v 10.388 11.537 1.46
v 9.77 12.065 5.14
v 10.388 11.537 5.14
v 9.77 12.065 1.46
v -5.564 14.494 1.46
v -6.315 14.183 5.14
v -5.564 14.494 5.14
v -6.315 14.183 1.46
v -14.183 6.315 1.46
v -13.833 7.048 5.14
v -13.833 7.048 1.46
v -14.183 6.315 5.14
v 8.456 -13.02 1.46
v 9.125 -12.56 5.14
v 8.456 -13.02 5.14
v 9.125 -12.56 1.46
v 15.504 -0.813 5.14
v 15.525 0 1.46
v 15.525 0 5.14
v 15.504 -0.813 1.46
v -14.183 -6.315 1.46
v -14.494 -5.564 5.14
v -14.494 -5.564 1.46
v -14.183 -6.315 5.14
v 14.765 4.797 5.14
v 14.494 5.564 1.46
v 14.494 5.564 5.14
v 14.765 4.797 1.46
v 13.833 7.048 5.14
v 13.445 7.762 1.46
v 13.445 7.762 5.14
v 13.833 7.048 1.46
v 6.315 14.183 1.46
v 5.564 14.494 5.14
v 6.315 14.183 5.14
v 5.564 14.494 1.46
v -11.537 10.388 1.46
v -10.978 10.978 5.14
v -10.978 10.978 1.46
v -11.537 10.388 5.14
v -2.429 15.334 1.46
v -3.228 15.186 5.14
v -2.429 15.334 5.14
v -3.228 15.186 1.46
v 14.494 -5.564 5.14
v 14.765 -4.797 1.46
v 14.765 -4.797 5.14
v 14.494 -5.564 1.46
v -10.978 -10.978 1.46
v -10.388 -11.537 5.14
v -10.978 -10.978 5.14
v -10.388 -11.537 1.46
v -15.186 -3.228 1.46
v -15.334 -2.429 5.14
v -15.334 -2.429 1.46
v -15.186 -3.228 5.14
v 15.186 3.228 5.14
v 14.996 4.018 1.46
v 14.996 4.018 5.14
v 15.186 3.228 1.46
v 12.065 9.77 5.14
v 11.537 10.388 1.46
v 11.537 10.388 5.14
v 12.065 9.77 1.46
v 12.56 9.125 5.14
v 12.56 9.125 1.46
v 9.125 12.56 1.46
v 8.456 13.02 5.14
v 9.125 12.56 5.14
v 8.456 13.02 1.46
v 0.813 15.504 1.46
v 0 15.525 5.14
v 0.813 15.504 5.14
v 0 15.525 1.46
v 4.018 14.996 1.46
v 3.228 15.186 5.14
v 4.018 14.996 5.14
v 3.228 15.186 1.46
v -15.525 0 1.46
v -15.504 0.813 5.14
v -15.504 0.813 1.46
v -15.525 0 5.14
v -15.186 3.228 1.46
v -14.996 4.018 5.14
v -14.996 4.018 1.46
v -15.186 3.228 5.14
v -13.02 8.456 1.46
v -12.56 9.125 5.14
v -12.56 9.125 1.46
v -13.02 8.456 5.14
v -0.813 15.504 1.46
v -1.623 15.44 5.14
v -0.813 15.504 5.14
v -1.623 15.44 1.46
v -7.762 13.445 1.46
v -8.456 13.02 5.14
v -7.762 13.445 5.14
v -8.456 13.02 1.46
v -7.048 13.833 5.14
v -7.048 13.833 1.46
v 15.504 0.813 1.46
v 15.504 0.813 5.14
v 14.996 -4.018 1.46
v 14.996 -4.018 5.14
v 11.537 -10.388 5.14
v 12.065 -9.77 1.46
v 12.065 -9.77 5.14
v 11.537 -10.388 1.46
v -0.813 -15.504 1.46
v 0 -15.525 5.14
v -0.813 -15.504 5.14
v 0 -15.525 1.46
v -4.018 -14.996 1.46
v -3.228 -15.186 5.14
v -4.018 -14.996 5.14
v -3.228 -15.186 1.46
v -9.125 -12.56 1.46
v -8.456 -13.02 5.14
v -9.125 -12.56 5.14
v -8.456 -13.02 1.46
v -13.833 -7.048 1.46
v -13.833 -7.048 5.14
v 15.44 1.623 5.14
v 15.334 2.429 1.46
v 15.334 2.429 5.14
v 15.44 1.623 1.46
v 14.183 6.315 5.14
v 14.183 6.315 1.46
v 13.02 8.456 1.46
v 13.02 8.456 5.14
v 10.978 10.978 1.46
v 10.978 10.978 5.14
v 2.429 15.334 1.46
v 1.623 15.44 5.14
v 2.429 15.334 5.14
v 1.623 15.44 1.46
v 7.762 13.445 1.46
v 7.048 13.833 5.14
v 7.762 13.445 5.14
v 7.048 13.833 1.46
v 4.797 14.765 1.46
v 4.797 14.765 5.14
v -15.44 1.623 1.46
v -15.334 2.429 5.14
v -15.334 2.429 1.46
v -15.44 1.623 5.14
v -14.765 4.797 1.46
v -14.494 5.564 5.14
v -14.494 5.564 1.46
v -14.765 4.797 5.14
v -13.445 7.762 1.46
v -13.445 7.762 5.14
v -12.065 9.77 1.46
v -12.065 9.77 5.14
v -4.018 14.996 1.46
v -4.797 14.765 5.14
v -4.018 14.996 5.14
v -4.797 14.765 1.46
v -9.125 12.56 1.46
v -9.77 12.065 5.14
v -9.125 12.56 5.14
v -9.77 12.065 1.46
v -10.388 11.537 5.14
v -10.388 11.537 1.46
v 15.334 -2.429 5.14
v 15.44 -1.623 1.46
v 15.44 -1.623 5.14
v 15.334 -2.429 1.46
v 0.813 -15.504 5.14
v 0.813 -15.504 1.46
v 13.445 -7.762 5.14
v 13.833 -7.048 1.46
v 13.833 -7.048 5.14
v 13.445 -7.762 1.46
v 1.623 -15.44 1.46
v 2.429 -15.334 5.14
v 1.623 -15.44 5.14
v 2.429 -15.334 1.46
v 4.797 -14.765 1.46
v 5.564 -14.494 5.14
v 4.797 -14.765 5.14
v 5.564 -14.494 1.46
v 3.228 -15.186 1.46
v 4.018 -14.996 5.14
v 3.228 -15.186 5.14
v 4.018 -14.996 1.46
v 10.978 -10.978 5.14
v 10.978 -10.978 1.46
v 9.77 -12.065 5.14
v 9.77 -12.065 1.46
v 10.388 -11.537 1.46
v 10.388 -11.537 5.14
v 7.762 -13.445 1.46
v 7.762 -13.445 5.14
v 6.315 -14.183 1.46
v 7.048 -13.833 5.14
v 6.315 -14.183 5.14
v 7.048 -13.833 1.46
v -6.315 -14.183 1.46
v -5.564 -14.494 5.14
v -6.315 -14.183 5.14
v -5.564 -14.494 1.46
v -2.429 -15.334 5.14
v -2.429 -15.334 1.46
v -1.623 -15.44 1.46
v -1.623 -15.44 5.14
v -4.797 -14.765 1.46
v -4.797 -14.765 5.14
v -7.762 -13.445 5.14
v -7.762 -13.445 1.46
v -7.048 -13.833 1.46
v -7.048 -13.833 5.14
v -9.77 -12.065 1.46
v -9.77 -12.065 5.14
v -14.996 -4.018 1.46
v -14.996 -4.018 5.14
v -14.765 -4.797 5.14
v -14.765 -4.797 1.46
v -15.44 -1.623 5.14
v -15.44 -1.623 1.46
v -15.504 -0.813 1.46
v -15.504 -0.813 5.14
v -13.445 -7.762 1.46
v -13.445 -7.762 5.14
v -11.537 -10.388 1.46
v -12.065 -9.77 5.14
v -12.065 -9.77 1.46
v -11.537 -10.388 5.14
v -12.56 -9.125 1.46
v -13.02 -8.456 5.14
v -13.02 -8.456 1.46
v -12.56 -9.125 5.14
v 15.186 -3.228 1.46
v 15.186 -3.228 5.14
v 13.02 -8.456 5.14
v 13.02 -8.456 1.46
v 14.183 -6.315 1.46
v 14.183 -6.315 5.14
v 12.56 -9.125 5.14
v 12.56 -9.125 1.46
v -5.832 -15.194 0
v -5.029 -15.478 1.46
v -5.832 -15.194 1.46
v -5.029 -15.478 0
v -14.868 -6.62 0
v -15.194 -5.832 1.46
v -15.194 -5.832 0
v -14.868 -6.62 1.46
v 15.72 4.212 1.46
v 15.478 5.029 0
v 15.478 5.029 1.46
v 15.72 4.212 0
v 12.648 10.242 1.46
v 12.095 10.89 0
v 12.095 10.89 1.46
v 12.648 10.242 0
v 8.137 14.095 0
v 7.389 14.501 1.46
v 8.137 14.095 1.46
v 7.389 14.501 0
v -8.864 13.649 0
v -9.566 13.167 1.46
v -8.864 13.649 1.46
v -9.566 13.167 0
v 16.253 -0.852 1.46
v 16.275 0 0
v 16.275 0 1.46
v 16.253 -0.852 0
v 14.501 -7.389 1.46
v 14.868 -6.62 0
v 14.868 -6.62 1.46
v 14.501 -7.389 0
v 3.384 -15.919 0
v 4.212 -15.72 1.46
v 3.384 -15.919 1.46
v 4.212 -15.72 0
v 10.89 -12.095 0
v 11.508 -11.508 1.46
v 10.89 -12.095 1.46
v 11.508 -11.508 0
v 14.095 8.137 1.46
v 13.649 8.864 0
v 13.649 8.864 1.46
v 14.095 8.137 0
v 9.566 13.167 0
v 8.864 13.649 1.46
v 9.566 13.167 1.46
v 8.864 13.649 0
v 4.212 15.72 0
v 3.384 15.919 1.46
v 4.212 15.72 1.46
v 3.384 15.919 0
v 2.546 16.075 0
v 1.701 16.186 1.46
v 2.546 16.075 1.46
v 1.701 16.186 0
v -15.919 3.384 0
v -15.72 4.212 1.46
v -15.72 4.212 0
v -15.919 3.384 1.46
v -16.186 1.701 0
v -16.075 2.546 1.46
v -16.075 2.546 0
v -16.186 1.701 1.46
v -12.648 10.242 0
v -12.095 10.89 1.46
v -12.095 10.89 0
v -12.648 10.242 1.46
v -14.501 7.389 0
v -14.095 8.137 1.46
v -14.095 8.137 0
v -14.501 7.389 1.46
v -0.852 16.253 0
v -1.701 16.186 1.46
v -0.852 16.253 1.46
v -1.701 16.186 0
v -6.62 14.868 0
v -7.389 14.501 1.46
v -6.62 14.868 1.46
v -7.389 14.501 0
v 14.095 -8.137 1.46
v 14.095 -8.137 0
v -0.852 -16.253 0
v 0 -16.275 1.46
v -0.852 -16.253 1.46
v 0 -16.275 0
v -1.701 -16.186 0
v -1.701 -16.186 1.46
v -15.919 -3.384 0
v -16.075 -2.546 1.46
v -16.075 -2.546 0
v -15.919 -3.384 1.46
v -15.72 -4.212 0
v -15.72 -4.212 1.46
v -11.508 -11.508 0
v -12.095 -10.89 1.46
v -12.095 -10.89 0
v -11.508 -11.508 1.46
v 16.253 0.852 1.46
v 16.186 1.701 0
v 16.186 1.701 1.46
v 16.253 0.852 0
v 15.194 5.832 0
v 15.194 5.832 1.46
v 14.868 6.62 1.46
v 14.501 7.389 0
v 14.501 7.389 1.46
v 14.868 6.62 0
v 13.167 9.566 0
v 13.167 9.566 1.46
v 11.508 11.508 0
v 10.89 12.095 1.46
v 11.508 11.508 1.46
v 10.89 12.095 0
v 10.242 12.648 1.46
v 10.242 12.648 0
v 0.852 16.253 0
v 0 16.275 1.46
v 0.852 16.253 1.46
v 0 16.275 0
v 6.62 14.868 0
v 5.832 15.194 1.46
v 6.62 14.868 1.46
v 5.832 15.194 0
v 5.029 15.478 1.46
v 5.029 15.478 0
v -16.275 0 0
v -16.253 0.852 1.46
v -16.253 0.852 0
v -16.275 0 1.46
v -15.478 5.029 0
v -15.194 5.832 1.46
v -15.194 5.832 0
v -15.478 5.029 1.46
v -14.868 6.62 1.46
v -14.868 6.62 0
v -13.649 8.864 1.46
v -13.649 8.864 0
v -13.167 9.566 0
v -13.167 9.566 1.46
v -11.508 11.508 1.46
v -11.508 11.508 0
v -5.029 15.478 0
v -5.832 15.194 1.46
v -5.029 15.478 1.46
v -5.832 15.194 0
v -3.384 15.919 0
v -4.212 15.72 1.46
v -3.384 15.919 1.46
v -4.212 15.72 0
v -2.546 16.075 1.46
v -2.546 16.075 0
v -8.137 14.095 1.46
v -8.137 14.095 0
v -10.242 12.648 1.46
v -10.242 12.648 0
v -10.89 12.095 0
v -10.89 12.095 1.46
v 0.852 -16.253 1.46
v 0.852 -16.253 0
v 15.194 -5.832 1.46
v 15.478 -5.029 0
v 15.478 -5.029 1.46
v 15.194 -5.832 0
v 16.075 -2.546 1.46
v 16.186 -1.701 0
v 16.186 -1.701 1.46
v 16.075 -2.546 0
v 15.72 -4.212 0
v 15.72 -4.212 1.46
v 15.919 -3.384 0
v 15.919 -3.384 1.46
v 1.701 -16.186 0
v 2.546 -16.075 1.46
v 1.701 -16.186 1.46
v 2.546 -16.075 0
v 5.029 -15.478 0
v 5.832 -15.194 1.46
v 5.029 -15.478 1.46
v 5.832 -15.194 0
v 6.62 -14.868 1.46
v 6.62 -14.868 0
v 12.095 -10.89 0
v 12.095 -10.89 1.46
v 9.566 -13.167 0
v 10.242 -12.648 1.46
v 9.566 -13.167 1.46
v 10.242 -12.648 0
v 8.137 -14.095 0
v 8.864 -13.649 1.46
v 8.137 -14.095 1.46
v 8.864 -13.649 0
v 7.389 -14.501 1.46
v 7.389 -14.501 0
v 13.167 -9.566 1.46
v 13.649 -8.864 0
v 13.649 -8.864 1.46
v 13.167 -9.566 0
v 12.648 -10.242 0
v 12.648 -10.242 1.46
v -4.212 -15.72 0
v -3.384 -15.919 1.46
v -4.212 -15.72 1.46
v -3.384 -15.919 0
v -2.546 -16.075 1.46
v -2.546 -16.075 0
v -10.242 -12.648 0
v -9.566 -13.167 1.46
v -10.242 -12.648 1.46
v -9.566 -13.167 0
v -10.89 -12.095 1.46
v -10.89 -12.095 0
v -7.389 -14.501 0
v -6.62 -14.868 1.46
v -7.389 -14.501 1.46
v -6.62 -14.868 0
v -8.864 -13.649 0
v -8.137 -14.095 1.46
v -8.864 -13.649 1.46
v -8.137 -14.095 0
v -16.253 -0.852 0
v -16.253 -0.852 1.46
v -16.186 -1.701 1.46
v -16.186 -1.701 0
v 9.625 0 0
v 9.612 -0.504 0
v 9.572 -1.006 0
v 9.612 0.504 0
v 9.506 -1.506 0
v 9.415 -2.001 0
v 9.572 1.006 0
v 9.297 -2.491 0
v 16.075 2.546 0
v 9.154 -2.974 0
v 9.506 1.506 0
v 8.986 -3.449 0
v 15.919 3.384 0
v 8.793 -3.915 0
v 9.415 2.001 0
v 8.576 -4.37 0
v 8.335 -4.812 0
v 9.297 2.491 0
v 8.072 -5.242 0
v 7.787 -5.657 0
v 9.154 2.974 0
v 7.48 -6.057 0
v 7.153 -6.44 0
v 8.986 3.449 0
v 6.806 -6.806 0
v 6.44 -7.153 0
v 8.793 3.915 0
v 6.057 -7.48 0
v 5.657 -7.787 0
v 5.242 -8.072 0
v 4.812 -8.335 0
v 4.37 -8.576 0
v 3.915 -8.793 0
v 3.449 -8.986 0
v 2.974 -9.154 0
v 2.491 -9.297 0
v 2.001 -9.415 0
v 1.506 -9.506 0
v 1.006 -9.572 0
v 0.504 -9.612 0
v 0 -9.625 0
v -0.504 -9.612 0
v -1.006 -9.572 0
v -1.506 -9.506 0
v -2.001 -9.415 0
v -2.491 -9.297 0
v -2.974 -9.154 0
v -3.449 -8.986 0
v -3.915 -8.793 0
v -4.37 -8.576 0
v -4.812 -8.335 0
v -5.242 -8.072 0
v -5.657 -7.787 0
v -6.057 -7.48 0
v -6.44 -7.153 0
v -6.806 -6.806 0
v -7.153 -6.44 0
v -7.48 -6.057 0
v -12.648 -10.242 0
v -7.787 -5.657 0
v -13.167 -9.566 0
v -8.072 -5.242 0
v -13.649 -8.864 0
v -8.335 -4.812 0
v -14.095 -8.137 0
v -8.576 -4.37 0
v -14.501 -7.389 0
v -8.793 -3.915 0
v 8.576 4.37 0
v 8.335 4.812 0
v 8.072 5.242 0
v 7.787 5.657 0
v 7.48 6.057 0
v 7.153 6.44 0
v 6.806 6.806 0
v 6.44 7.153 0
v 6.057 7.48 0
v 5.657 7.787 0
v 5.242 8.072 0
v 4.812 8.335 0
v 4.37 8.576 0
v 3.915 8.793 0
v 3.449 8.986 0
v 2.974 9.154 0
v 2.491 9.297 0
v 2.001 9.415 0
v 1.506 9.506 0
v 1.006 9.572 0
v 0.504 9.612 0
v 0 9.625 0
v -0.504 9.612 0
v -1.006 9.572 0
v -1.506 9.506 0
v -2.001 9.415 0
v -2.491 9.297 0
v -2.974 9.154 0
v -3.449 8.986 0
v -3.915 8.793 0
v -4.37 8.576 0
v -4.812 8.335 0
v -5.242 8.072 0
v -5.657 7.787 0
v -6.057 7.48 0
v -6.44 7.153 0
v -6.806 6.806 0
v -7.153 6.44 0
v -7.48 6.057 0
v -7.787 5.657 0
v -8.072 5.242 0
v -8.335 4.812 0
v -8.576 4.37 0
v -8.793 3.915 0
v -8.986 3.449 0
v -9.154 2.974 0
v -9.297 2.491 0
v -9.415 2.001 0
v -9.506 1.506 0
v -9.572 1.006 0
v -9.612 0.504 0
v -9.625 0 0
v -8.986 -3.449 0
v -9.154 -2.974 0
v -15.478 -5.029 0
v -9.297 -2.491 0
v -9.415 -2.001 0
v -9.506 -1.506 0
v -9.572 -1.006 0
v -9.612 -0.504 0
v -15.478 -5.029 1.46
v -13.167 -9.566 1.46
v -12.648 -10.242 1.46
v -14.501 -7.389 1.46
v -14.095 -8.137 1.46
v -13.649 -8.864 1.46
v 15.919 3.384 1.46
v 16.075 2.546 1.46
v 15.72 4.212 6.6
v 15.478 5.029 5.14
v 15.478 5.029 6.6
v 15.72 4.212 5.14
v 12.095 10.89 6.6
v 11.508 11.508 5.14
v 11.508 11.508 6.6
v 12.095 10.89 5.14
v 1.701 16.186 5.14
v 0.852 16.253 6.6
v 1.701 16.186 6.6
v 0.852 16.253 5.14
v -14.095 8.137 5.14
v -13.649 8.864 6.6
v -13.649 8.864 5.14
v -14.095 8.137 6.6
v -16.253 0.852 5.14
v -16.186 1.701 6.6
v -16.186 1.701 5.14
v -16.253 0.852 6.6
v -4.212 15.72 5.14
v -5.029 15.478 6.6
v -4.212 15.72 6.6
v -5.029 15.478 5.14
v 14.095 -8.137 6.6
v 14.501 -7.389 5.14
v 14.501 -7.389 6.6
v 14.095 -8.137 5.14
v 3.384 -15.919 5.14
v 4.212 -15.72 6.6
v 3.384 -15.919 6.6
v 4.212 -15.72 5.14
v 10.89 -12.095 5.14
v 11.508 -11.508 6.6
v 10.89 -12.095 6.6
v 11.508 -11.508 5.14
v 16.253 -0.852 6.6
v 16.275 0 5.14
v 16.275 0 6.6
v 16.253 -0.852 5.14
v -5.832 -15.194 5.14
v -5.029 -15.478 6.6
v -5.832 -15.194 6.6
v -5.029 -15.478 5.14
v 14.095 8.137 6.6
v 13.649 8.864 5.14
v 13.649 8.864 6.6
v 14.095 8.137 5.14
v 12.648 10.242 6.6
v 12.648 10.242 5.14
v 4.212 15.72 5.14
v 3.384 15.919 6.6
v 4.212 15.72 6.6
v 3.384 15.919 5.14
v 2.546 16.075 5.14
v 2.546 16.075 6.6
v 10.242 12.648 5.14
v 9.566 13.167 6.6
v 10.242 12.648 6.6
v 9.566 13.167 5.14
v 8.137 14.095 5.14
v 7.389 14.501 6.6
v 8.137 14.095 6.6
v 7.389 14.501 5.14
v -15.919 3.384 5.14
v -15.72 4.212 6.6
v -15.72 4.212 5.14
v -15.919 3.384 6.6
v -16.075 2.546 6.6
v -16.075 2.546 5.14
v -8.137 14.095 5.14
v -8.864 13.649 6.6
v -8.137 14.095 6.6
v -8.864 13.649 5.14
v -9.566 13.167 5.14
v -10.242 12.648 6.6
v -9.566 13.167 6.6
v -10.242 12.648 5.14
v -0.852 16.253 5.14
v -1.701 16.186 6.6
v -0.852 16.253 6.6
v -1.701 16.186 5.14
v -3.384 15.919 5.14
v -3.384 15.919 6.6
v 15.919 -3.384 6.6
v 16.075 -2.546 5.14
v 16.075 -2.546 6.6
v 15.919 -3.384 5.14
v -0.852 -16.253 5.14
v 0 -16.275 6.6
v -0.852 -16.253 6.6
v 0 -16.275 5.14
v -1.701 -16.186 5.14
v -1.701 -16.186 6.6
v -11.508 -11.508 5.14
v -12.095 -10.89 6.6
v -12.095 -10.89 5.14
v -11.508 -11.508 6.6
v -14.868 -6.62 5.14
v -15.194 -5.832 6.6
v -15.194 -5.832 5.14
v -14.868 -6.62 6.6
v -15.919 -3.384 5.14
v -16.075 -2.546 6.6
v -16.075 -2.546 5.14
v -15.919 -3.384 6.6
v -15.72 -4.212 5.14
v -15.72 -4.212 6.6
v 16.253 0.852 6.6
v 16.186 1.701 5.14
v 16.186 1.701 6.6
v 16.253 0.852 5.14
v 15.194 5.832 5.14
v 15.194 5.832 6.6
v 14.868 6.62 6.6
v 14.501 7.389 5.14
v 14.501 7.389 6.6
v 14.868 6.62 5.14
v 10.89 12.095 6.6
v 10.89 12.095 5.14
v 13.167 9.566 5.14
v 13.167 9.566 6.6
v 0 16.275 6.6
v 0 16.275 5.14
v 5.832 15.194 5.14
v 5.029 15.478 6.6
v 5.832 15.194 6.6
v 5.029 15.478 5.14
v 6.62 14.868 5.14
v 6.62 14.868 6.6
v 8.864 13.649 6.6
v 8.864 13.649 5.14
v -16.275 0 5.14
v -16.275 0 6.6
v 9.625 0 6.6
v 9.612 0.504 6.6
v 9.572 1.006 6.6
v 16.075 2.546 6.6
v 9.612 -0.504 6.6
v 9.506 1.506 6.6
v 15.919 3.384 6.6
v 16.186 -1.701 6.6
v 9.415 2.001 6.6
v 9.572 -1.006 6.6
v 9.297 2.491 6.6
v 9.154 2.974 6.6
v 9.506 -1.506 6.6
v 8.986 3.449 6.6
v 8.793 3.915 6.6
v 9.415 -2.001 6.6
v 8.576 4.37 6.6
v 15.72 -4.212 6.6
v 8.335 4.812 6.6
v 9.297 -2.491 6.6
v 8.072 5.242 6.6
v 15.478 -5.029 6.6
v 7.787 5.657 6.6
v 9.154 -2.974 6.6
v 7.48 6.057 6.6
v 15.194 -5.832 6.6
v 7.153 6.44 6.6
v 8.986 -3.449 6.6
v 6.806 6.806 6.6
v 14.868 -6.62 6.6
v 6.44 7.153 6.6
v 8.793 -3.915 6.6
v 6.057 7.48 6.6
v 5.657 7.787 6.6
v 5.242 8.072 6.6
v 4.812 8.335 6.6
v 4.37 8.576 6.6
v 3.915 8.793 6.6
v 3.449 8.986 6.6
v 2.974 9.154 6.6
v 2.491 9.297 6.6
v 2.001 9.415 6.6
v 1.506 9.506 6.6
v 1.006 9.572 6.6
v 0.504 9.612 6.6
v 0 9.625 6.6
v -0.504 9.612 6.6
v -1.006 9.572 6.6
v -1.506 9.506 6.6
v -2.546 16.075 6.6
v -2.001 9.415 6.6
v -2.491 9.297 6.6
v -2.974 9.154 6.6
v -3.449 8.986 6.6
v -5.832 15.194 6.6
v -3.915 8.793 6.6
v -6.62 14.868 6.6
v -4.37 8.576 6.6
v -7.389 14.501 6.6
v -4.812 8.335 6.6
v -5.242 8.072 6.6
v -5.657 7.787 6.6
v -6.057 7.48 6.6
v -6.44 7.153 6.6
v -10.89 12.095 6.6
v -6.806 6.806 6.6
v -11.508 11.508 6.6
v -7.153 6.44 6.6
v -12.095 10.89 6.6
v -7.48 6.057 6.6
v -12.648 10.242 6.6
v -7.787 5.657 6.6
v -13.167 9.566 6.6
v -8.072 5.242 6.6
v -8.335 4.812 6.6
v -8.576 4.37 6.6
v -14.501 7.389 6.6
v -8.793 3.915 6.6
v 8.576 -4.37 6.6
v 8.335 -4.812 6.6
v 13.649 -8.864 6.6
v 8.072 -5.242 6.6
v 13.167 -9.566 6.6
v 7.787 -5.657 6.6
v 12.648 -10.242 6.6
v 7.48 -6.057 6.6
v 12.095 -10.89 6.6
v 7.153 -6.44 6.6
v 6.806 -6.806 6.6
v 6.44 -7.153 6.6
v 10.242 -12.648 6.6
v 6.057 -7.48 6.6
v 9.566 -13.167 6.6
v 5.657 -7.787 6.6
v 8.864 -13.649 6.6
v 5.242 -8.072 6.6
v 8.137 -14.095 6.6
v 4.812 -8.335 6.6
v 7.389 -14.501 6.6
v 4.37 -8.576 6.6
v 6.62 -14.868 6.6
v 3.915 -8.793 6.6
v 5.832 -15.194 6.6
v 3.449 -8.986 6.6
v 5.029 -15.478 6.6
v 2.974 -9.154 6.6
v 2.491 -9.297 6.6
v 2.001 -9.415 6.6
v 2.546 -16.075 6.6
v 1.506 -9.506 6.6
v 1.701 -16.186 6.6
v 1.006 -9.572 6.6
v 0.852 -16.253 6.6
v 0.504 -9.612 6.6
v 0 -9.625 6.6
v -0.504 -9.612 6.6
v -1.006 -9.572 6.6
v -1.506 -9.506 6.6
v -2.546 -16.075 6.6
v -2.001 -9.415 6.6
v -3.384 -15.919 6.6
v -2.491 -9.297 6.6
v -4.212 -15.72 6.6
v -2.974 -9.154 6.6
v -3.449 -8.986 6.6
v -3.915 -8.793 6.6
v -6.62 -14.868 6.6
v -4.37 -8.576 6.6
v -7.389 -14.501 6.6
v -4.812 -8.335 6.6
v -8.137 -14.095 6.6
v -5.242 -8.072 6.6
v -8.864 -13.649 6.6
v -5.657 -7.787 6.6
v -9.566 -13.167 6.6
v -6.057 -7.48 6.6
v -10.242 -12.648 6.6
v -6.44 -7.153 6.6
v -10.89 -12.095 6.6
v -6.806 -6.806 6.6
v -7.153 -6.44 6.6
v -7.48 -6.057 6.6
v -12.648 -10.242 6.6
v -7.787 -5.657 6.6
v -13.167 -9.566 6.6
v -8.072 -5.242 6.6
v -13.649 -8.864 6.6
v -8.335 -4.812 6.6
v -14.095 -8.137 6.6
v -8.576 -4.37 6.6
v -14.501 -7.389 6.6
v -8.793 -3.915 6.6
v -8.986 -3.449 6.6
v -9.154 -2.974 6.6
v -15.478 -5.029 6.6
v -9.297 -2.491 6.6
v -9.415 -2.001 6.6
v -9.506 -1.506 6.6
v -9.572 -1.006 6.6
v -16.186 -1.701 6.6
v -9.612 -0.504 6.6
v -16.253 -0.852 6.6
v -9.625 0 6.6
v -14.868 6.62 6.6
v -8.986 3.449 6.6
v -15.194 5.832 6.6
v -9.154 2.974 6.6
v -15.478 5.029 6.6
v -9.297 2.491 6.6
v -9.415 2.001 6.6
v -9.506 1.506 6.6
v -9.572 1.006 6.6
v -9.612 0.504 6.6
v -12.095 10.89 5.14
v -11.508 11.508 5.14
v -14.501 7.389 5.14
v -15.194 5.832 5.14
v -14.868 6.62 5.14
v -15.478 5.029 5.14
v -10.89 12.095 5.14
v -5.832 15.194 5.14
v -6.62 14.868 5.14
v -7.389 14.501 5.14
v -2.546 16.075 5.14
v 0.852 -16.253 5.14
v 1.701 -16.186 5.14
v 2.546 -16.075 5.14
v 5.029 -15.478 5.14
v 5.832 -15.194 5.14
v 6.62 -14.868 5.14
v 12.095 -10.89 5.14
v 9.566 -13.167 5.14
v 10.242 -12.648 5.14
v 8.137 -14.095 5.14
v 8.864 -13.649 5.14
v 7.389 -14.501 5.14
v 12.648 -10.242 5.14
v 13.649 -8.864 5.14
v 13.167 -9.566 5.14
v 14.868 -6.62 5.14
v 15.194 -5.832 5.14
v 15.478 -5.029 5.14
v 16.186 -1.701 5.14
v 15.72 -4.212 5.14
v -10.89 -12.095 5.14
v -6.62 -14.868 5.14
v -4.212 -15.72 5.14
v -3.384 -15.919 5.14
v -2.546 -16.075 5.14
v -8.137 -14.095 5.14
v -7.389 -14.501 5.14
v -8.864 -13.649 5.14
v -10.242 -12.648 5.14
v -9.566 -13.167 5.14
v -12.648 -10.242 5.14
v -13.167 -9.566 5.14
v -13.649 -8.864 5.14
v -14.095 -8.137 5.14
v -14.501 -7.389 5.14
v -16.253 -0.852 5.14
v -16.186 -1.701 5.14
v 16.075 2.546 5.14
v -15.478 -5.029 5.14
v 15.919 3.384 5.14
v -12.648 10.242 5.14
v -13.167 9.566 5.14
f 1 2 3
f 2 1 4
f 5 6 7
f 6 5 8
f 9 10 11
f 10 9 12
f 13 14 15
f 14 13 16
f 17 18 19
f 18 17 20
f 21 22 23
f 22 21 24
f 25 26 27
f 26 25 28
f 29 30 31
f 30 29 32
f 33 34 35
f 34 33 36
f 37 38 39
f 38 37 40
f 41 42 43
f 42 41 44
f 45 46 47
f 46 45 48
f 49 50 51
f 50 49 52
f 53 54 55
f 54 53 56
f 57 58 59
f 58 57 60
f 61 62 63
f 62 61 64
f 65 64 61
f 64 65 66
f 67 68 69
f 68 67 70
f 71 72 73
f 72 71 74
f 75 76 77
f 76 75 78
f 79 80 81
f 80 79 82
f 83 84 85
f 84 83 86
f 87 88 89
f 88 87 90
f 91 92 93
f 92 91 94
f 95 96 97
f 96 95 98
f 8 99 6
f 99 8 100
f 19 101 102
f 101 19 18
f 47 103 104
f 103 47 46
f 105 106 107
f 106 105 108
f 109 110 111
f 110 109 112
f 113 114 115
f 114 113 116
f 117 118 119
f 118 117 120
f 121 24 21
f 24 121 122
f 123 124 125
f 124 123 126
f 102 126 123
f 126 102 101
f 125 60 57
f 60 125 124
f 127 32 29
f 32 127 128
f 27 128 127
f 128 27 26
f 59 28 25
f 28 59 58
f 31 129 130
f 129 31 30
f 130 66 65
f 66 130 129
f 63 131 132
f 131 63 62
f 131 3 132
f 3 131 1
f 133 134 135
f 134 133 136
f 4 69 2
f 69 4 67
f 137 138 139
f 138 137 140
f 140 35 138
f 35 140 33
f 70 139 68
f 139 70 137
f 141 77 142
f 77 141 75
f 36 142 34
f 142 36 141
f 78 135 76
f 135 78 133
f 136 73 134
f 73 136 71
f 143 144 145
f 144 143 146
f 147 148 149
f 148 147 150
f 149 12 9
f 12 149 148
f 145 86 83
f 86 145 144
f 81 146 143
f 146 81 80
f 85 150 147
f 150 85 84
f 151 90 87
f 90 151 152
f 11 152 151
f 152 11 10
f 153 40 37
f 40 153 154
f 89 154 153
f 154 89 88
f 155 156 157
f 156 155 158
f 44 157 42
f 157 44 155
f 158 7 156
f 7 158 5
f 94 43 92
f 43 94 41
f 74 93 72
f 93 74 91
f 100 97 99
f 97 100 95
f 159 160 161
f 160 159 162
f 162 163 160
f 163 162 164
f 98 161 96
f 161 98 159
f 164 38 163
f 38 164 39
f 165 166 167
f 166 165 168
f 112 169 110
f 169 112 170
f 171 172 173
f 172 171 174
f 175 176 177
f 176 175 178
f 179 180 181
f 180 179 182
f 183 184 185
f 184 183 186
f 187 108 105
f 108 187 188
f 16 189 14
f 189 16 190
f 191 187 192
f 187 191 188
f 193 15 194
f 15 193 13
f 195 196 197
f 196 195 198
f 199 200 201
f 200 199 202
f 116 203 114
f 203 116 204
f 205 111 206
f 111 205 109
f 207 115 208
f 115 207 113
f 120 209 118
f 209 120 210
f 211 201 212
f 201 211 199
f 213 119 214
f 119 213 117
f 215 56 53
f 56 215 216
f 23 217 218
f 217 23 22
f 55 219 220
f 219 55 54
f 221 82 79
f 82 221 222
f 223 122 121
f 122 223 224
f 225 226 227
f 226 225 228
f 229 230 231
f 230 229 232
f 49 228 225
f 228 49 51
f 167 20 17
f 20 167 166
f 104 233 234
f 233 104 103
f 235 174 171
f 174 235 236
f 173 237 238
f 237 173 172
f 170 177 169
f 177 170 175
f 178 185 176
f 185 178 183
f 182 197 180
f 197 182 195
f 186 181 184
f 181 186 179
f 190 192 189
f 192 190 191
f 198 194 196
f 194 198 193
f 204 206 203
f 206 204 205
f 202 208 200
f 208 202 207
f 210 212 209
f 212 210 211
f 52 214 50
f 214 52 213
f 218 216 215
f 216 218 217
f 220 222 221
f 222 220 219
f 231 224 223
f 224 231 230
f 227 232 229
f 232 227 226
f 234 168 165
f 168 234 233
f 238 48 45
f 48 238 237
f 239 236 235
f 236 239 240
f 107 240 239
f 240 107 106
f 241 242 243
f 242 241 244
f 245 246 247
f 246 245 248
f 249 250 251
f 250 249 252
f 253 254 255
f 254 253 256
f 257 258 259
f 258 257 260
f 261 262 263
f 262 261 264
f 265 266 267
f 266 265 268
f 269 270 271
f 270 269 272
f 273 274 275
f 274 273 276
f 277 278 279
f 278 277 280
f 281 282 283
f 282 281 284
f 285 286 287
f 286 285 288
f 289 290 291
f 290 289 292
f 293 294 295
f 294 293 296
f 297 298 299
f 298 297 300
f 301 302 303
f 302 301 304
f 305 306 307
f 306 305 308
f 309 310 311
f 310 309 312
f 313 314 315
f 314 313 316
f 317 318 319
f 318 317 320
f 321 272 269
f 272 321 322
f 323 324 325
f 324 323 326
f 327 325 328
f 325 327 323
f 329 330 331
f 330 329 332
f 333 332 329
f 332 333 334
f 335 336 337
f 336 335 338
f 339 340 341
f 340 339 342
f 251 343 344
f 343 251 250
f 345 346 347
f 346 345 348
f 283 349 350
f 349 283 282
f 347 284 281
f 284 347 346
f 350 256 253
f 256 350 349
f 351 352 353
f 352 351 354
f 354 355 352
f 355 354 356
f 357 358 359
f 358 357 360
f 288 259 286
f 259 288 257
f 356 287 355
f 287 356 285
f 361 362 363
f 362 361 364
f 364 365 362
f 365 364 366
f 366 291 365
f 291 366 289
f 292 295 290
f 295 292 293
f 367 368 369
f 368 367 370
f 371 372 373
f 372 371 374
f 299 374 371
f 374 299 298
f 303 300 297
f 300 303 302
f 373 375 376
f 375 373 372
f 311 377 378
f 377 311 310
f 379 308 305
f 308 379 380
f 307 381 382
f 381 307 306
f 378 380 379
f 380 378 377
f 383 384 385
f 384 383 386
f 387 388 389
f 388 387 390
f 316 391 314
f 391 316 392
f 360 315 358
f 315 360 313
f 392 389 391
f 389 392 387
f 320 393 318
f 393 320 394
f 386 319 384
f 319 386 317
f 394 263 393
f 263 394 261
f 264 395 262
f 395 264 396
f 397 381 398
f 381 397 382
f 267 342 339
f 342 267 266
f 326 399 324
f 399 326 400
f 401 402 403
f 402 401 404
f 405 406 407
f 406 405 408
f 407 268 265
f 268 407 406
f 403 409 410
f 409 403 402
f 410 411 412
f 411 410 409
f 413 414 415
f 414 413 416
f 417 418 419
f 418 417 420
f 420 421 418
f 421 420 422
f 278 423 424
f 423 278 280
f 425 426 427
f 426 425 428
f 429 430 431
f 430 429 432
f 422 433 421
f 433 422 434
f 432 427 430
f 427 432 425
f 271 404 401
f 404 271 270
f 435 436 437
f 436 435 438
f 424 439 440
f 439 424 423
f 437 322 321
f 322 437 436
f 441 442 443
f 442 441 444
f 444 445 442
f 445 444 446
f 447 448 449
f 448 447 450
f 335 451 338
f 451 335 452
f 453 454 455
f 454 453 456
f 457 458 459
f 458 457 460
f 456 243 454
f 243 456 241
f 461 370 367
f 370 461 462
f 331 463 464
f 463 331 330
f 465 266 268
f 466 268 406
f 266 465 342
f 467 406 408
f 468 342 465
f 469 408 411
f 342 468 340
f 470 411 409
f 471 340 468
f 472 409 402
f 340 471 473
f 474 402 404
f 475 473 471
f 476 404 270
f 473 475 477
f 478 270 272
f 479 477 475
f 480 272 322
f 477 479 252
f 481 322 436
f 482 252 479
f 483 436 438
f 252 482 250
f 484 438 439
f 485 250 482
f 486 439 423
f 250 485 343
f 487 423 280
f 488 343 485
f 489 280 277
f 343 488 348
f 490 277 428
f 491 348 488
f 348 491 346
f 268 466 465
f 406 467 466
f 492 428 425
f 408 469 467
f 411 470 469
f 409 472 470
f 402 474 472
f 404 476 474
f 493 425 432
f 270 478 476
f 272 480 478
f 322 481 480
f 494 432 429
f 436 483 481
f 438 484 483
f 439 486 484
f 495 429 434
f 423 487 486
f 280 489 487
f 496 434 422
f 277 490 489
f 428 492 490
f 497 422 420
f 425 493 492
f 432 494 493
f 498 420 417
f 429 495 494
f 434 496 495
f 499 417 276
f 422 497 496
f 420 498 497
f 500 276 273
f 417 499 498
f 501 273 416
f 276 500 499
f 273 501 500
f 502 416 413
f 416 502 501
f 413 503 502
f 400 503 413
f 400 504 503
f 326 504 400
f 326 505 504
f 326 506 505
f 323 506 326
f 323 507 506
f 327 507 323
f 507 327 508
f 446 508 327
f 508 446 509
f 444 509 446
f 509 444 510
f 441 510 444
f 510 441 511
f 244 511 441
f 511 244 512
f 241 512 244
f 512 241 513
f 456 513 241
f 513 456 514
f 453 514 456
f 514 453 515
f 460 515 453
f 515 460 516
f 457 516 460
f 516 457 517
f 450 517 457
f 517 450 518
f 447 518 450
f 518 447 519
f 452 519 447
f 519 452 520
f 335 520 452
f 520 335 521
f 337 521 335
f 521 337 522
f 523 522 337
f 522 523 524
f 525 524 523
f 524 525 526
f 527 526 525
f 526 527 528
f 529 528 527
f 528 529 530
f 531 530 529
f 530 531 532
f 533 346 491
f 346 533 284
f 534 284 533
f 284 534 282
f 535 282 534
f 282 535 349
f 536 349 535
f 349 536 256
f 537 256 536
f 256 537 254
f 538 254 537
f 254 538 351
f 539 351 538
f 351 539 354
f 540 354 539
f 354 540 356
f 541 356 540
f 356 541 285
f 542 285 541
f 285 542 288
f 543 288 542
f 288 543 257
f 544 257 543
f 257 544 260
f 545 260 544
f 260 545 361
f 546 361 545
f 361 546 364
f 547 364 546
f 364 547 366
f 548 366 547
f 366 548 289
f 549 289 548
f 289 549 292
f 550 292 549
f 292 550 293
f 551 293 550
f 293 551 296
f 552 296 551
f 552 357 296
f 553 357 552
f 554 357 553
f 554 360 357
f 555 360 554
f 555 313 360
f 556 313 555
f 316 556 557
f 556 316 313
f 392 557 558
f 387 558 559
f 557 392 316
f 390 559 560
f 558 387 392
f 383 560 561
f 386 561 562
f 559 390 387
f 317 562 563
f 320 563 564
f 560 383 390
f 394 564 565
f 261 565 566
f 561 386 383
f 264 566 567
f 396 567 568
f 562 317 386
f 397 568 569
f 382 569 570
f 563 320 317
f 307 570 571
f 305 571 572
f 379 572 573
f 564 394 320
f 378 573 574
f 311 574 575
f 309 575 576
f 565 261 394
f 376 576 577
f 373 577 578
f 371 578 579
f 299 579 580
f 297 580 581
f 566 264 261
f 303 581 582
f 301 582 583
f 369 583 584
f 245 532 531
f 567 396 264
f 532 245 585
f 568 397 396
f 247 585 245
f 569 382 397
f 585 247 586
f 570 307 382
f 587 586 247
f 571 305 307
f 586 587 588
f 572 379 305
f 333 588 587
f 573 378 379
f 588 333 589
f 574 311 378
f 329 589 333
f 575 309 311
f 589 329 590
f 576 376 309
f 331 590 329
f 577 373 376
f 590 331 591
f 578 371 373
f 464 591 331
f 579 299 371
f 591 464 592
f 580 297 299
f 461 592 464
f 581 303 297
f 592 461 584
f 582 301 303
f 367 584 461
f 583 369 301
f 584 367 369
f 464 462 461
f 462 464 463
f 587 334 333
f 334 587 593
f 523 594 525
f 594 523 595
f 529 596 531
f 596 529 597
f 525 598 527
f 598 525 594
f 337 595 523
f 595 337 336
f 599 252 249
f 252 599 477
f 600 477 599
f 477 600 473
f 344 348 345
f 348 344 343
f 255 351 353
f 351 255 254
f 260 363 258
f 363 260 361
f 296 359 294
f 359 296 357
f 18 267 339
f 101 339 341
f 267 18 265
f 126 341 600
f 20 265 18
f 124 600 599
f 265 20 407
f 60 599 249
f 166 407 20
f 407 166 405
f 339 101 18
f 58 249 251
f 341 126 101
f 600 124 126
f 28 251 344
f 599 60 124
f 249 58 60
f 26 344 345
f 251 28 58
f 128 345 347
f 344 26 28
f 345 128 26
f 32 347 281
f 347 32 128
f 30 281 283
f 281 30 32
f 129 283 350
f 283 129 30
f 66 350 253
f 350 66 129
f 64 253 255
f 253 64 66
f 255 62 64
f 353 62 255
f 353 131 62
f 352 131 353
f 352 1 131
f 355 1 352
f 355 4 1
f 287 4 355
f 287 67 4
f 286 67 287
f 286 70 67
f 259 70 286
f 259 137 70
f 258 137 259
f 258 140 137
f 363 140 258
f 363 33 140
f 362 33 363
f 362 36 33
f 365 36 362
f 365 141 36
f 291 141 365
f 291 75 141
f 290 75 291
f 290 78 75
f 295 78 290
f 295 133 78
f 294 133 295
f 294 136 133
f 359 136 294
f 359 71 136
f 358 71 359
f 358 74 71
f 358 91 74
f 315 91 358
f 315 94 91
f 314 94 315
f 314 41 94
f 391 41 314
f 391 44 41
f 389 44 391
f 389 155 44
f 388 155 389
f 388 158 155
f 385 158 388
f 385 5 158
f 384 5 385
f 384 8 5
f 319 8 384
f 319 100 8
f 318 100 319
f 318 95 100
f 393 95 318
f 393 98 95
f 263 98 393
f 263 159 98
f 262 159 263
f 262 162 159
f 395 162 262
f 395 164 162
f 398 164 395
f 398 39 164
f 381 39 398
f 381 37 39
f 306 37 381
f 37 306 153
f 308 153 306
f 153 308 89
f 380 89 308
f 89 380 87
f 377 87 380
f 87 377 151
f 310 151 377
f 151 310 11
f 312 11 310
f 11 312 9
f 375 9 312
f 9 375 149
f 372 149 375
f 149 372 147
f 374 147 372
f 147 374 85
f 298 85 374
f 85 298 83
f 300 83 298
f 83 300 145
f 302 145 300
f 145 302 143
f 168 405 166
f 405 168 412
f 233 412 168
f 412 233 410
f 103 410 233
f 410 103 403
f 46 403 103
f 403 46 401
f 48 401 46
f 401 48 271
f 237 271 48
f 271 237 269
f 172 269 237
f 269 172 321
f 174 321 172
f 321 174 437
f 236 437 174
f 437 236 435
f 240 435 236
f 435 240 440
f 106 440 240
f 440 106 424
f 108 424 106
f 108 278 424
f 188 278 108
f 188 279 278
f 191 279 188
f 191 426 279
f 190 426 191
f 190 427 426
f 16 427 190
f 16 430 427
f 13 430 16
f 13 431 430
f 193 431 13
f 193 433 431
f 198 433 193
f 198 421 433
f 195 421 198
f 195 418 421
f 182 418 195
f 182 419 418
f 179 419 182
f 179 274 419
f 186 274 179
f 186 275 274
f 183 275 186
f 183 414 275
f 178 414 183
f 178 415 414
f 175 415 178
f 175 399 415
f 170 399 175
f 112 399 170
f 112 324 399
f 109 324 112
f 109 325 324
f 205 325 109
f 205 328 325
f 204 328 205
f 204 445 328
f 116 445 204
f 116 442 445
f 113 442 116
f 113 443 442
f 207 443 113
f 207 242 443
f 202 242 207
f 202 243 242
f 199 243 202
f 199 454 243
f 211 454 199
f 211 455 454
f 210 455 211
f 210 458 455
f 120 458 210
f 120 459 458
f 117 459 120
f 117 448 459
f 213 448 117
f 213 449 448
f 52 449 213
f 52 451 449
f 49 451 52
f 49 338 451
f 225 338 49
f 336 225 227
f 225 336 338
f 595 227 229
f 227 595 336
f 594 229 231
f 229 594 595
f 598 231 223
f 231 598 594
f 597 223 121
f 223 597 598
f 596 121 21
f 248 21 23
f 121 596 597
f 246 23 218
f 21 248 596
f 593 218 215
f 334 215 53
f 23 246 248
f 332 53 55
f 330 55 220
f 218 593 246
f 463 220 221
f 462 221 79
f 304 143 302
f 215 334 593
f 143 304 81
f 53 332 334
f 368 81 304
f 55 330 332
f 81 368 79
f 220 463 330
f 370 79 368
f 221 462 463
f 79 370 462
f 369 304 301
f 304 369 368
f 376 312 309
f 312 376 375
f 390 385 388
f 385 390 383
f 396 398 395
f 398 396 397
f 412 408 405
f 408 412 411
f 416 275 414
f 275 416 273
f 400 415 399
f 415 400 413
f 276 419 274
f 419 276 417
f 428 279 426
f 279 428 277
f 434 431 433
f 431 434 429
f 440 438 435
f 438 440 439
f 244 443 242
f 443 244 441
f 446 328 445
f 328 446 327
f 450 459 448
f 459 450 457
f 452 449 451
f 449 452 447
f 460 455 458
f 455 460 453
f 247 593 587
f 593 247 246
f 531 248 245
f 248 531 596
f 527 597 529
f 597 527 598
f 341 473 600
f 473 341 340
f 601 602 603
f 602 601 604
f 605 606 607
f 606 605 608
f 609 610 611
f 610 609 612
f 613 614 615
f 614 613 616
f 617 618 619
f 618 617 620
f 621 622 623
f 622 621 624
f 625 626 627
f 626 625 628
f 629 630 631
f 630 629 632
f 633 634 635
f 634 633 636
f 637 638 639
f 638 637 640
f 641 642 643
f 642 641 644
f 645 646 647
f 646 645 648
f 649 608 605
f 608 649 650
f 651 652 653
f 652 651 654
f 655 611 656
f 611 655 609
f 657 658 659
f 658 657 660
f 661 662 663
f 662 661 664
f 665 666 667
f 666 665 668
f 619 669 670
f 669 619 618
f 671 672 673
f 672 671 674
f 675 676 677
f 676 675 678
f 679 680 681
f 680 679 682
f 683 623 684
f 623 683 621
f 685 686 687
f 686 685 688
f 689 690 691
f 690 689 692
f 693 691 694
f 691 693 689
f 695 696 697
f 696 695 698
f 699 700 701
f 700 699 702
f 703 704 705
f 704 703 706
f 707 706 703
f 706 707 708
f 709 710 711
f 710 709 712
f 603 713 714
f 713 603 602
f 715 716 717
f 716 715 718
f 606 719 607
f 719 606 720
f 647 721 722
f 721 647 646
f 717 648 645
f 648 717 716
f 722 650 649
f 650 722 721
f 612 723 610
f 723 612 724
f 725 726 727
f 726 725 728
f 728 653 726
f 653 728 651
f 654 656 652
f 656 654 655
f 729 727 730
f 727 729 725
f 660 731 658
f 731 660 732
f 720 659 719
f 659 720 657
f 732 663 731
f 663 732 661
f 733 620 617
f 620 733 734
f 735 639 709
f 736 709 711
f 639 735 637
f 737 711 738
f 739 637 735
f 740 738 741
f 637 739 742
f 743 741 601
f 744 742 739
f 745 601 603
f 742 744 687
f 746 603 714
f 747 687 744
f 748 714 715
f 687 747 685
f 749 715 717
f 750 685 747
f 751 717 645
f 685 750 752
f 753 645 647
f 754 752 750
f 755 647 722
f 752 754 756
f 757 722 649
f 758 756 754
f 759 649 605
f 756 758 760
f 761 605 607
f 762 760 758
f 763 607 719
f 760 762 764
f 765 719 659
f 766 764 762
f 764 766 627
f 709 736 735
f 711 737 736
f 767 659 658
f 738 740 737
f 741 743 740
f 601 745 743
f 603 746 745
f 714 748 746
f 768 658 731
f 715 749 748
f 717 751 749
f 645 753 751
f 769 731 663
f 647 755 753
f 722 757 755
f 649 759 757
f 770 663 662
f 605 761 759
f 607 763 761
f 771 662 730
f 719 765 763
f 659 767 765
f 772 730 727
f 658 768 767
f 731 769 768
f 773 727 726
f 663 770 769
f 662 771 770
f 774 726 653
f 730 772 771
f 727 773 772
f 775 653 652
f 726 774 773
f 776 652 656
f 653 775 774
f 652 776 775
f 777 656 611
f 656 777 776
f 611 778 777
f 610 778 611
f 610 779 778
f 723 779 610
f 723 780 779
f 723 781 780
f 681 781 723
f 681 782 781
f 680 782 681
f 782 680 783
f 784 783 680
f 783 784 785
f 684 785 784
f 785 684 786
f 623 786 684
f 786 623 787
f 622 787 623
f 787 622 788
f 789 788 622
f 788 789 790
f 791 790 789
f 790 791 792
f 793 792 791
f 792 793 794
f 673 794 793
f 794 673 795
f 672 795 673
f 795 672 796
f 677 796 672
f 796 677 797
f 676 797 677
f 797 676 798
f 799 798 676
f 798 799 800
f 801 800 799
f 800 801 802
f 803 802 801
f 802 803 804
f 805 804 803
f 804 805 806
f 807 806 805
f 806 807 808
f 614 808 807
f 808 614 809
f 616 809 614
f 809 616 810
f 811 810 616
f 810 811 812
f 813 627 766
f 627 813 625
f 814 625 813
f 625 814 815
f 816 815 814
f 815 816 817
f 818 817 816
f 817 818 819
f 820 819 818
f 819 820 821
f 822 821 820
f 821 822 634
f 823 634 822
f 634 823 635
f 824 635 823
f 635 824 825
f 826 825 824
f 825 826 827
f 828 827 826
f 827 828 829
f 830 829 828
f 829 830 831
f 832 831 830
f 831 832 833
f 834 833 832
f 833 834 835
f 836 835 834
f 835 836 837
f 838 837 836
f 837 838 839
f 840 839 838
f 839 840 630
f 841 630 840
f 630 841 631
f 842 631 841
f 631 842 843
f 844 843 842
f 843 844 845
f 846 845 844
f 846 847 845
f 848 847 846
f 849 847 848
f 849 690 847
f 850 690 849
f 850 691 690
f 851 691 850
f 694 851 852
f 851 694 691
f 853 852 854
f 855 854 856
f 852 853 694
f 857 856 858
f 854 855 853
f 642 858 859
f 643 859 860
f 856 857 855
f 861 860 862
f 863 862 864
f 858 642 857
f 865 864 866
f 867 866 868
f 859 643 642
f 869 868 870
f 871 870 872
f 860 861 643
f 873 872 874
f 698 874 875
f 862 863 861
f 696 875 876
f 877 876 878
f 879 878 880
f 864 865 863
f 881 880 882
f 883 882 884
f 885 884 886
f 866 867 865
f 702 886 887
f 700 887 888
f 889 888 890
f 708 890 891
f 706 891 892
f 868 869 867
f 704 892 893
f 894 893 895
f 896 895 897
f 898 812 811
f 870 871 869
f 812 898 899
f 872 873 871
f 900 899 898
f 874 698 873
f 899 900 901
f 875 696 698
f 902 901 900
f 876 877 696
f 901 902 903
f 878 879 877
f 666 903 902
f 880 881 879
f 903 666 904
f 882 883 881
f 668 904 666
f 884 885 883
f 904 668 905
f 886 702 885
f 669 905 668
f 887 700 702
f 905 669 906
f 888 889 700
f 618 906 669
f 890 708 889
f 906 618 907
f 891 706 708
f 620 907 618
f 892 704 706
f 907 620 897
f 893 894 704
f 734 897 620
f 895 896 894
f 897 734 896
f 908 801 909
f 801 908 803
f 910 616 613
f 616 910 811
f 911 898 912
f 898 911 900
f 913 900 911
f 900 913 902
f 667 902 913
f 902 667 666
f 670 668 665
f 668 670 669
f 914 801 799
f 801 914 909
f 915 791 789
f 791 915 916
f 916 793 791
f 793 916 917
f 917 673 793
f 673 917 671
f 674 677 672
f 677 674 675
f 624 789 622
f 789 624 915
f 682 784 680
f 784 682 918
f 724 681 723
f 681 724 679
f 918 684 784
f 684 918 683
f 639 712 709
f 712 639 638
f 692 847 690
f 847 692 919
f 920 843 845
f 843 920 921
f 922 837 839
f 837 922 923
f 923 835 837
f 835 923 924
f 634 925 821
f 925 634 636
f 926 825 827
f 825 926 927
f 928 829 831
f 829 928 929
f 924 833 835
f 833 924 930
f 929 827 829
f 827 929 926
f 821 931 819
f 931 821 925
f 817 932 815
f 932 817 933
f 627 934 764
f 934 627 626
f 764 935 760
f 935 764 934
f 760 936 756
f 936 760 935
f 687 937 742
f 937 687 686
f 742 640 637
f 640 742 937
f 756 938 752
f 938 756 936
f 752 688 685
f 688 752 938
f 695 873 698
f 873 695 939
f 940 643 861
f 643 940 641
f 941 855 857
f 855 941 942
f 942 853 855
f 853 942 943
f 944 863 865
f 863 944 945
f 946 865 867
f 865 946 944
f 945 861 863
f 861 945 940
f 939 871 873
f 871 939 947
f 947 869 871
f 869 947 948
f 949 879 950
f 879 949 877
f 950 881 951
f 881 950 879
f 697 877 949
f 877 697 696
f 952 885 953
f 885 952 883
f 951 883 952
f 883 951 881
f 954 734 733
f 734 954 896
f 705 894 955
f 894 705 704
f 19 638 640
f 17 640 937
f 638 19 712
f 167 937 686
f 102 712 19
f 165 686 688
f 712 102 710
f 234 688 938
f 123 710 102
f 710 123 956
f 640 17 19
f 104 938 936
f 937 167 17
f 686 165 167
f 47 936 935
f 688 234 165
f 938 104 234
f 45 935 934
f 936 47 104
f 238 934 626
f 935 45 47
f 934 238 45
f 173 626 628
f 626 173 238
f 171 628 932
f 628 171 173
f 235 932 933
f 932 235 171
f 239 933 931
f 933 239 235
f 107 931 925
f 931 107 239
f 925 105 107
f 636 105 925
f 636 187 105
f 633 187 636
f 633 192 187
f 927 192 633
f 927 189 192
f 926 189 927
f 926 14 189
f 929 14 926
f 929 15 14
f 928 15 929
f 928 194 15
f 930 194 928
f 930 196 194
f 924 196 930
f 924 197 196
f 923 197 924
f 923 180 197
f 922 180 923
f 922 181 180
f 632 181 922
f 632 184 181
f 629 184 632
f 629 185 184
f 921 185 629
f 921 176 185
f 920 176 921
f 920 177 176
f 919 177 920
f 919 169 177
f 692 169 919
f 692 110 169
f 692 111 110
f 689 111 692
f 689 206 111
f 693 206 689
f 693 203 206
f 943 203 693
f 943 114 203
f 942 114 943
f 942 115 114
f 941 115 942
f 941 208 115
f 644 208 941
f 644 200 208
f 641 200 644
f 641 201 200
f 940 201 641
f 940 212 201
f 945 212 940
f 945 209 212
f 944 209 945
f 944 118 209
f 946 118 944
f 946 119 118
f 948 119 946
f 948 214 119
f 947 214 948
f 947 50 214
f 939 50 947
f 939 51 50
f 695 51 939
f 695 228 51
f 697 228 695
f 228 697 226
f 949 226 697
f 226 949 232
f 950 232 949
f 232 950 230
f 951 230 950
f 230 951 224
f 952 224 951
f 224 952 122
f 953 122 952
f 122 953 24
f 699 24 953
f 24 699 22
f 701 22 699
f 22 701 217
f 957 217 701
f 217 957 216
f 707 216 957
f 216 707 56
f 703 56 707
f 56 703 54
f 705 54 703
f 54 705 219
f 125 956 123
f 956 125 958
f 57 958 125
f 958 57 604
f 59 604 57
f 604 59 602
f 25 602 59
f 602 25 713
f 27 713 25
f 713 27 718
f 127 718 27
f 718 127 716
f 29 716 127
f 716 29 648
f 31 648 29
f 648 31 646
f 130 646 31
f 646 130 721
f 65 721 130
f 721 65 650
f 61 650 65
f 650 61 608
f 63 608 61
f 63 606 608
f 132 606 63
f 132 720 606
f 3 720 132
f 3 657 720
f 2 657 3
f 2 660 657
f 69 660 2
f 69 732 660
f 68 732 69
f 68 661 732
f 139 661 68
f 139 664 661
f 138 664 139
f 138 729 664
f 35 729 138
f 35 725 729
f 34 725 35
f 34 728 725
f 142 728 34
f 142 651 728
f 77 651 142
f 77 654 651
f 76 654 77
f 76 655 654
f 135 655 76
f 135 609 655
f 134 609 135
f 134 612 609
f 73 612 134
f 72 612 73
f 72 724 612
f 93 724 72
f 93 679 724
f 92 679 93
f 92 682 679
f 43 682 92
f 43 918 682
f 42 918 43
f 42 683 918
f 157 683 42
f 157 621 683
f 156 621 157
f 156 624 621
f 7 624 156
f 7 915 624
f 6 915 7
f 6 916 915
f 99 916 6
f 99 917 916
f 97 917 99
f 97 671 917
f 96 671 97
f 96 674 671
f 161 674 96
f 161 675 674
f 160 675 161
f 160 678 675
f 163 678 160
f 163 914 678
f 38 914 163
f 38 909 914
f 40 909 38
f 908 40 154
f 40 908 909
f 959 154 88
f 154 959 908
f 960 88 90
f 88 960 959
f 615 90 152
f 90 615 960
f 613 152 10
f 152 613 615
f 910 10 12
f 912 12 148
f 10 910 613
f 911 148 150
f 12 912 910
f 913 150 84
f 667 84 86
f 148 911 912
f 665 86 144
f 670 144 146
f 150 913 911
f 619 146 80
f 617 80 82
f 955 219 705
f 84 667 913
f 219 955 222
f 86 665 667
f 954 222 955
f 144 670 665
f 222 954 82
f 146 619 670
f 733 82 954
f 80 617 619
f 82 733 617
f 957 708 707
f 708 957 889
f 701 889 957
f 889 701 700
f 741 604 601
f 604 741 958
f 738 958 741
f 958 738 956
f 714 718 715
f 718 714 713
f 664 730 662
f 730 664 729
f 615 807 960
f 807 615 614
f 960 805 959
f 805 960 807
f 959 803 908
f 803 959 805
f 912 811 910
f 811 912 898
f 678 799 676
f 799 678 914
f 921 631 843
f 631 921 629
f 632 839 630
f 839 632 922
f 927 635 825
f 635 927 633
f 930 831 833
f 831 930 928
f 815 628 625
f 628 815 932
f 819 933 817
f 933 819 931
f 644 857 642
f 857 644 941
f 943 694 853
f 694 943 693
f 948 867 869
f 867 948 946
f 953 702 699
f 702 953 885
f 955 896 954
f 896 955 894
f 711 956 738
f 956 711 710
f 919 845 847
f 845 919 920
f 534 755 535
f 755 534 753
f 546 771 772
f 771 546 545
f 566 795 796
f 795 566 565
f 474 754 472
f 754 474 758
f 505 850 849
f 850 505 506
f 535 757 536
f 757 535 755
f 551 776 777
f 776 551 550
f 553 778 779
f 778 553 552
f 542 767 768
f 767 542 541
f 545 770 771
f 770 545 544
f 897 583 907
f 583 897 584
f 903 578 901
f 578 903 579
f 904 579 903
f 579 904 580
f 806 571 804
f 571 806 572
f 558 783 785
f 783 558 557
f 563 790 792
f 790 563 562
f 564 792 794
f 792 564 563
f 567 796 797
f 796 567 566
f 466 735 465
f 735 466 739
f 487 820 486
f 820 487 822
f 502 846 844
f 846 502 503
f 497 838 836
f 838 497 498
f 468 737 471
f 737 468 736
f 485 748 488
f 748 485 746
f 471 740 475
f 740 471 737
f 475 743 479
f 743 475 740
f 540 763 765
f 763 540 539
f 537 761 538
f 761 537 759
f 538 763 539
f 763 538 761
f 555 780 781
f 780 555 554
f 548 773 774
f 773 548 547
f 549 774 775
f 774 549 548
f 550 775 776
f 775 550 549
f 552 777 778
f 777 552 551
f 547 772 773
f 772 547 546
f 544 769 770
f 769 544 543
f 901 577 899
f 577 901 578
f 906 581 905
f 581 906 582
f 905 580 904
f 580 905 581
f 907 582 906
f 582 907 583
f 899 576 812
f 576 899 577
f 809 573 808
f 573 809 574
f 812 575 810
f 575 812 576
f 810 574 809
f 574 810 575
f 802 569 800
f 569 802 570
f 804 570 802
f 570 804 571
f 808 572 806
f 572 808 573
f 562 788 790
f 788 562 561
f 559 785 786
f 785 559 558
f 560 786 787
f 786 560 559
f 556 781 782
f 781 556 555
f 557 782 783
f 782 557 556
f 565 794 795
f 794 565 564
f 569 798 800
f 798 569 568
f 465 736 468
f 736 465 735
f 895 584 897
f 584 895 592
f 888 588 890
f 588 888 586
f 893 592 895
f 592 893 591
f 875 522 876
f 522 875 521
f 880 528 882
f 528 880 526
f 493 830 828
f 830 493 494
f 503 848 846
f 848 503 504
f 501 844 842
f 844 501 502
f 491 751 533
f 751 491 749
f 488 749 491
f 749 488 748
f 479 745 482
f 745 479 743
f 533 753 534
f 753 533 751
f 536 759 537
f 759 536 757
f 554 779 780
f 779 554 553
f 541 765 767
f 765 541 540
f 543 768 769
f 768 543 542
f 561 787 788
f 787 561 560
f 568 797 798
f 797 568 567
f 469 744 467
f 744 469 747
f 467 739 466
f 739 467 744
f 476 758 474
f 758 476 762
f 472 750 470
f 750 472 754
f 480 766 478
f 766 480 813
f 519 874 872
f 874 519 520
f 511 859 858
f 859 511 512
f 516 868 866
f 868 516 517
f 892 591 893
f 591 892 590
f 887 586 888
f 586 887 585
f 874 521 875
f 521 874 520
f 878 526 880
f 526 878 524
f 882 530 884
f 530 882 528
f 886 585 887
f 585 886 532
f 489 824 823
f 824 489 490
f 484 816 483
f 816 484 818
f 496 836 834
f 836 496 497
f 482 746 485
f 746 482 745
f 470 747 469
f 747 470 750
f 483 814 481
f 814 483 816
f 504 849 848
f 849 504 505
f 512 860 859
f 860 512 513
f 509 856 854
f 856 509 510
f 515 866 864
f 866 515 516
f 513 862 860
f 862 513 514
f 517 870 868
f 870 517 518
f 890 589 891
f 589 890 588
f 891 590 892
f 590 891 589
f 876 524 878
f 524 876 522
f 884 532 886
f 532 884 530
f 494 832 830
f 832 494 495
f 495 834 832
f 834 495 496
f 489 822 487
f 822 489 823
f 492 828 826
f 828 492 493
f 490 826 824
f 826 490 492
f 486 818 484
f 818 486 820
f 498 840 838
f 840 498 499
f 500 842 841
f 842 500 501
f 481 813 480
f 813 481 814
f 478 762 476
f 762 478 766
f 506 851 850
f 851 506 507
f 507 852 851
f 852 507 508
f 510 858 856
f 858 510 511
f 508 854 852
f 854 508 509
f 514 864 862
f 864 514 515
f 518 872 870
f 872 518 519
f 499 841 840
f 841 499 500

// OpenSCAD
//This is an openscad part used as a pulley to connect to the shaft

//render
//lower_flange();
shaft_pulley();

//===========Parameters===========

num_frames = 12; //total number of frames to make cutouts for
panel_width = 1.625*25.4;  //size of each panel

//===========Geometry============
clearance = 0.1; //mm - amount to oversize holes so that parts will assemble

d_shaft = .75*25.4; //0.75" shaft diameter in mm
d_mag = 8.1; //  diamete of magnets in mm
h_mag = 2.1; //mm the heigh of the magnets
d_pin = 0.125*25.4; // diameter of pins used to hold shaft to flange
d_flange = 7*25.4; // outer diameter of the flange 
t_flange = 6; //thickness of the flang in mm
t_hub = 6; //thickness of the material around the hub
h_hub = 25; //height of the hub from the surface of the flange
edge_space = 5; //mm from the edge of the flange to the closest part of the frame
d_base = d_shaft+2*t_hub+6;
t_base = 3; //mm thickness of base web
t_panel = 3;//mm how thick each panel is
panel_cut = 3; //mm how deep of a recess to cut for each panel

h_lip = 1.45; //mm height of the lip that keeps the belt in place
h_body = 3.7; //mm height of the body area the belt rides on

t_lip = 0.75; //mm diamater of lip above body


fudge = 0.01; //mm - use this value to make sure surfaces aren't coincident
//===========Modules=============
module lower_flange(){
    difference(){
        //Make the core of the flange
        union(){
            //This makes the base of the flange
            //cylinder(r = d_flange/2, h= t_flange, $fn = 360);
            //This makes the hub
            //translate([0,0,t_flange-fudge])
            cylinder(r=d_base,h=t_base,$fn = 120);
            cylinder(r = d_shaft/2+t_hub, h = h_hub+t_flange, $fn = 120);
            //add in a block to mate the disks
            translate([-49/2,-10.1/2,0])
            cube([49,10.1,6+t_base]);
        }
        //Then subtract things from it
        
        //Subtract the hole for the shaft
        translate([0,0,-fudge])
        cylinder(r = d_shaft/2+clearance,h = t_flange+h_hub+2*fudge,$fn = 120);
        
        //cut a pin to register the flange to the shaft
               
        translate([0,0,t_flange+h_hub*.5])
        rotate([90,0,0]) 
        cylinder(r=d_pin/2,h=5*d_shaft+2*t_hub+2*fudge,$fn=20,center=true);
        //subtract the holes for the frames
        for (i=[0:num_frames-1]){
            cord_calc(i);
            mag_holes(i);
            
            
        }
        
 
    }
    
  
    
    
    
    
}
module cord_calc(i){
    theta = 2*3.1415/num_frames;
    r_panel = (d_flange/2-edge_space)*cos(theta/2)-t_panel;
 
    rotate([0,0,i*theta*180/3.1415])
    translate([r_panel,-panel_width/2,t_flange+fudge-panel_cut])
    cube([t_panel+clearance,panel_width+clearance,panel_cut]);
  
}

module mag_holes(i){
    theta = 2*3.1415/num_frames;
    
    rotate([0,0,i*theta*180/3.1415])
    translate([d_flange/2-d_mag/2-edge_space,0,-fudge])
    cylinder(r=d_mag/2+clearance, h=h_mag, $fn = 20);
    
}
module shaft_pulley(){
    difference(){
        union(){
        //create the surface of the pulley that the belt rides on
        translate([0,0,h_lip])
        cylinder(r = d_shaft/2+t_hub, h = h_body, $fn = 120);
        //lower lip
        cylinder(r = d_shaft/2+t_hub+t_lip, h = h_lip+fudge, $fn = 120);
        //upper lip
        translate([0,0,h_lip+h_body-fudge])
        cylinder(r = d_shaft/2+t_hub+t_lip, h = h_lip+fudge, $fn = 120);        
    }
        //subtract out center hole
        translate([0,0,-fudge])
        cylinder(r = d_shaft/2+clearance, h = h_body+2*h_lip+2*fudge,$fn=120);
    
    }
}
